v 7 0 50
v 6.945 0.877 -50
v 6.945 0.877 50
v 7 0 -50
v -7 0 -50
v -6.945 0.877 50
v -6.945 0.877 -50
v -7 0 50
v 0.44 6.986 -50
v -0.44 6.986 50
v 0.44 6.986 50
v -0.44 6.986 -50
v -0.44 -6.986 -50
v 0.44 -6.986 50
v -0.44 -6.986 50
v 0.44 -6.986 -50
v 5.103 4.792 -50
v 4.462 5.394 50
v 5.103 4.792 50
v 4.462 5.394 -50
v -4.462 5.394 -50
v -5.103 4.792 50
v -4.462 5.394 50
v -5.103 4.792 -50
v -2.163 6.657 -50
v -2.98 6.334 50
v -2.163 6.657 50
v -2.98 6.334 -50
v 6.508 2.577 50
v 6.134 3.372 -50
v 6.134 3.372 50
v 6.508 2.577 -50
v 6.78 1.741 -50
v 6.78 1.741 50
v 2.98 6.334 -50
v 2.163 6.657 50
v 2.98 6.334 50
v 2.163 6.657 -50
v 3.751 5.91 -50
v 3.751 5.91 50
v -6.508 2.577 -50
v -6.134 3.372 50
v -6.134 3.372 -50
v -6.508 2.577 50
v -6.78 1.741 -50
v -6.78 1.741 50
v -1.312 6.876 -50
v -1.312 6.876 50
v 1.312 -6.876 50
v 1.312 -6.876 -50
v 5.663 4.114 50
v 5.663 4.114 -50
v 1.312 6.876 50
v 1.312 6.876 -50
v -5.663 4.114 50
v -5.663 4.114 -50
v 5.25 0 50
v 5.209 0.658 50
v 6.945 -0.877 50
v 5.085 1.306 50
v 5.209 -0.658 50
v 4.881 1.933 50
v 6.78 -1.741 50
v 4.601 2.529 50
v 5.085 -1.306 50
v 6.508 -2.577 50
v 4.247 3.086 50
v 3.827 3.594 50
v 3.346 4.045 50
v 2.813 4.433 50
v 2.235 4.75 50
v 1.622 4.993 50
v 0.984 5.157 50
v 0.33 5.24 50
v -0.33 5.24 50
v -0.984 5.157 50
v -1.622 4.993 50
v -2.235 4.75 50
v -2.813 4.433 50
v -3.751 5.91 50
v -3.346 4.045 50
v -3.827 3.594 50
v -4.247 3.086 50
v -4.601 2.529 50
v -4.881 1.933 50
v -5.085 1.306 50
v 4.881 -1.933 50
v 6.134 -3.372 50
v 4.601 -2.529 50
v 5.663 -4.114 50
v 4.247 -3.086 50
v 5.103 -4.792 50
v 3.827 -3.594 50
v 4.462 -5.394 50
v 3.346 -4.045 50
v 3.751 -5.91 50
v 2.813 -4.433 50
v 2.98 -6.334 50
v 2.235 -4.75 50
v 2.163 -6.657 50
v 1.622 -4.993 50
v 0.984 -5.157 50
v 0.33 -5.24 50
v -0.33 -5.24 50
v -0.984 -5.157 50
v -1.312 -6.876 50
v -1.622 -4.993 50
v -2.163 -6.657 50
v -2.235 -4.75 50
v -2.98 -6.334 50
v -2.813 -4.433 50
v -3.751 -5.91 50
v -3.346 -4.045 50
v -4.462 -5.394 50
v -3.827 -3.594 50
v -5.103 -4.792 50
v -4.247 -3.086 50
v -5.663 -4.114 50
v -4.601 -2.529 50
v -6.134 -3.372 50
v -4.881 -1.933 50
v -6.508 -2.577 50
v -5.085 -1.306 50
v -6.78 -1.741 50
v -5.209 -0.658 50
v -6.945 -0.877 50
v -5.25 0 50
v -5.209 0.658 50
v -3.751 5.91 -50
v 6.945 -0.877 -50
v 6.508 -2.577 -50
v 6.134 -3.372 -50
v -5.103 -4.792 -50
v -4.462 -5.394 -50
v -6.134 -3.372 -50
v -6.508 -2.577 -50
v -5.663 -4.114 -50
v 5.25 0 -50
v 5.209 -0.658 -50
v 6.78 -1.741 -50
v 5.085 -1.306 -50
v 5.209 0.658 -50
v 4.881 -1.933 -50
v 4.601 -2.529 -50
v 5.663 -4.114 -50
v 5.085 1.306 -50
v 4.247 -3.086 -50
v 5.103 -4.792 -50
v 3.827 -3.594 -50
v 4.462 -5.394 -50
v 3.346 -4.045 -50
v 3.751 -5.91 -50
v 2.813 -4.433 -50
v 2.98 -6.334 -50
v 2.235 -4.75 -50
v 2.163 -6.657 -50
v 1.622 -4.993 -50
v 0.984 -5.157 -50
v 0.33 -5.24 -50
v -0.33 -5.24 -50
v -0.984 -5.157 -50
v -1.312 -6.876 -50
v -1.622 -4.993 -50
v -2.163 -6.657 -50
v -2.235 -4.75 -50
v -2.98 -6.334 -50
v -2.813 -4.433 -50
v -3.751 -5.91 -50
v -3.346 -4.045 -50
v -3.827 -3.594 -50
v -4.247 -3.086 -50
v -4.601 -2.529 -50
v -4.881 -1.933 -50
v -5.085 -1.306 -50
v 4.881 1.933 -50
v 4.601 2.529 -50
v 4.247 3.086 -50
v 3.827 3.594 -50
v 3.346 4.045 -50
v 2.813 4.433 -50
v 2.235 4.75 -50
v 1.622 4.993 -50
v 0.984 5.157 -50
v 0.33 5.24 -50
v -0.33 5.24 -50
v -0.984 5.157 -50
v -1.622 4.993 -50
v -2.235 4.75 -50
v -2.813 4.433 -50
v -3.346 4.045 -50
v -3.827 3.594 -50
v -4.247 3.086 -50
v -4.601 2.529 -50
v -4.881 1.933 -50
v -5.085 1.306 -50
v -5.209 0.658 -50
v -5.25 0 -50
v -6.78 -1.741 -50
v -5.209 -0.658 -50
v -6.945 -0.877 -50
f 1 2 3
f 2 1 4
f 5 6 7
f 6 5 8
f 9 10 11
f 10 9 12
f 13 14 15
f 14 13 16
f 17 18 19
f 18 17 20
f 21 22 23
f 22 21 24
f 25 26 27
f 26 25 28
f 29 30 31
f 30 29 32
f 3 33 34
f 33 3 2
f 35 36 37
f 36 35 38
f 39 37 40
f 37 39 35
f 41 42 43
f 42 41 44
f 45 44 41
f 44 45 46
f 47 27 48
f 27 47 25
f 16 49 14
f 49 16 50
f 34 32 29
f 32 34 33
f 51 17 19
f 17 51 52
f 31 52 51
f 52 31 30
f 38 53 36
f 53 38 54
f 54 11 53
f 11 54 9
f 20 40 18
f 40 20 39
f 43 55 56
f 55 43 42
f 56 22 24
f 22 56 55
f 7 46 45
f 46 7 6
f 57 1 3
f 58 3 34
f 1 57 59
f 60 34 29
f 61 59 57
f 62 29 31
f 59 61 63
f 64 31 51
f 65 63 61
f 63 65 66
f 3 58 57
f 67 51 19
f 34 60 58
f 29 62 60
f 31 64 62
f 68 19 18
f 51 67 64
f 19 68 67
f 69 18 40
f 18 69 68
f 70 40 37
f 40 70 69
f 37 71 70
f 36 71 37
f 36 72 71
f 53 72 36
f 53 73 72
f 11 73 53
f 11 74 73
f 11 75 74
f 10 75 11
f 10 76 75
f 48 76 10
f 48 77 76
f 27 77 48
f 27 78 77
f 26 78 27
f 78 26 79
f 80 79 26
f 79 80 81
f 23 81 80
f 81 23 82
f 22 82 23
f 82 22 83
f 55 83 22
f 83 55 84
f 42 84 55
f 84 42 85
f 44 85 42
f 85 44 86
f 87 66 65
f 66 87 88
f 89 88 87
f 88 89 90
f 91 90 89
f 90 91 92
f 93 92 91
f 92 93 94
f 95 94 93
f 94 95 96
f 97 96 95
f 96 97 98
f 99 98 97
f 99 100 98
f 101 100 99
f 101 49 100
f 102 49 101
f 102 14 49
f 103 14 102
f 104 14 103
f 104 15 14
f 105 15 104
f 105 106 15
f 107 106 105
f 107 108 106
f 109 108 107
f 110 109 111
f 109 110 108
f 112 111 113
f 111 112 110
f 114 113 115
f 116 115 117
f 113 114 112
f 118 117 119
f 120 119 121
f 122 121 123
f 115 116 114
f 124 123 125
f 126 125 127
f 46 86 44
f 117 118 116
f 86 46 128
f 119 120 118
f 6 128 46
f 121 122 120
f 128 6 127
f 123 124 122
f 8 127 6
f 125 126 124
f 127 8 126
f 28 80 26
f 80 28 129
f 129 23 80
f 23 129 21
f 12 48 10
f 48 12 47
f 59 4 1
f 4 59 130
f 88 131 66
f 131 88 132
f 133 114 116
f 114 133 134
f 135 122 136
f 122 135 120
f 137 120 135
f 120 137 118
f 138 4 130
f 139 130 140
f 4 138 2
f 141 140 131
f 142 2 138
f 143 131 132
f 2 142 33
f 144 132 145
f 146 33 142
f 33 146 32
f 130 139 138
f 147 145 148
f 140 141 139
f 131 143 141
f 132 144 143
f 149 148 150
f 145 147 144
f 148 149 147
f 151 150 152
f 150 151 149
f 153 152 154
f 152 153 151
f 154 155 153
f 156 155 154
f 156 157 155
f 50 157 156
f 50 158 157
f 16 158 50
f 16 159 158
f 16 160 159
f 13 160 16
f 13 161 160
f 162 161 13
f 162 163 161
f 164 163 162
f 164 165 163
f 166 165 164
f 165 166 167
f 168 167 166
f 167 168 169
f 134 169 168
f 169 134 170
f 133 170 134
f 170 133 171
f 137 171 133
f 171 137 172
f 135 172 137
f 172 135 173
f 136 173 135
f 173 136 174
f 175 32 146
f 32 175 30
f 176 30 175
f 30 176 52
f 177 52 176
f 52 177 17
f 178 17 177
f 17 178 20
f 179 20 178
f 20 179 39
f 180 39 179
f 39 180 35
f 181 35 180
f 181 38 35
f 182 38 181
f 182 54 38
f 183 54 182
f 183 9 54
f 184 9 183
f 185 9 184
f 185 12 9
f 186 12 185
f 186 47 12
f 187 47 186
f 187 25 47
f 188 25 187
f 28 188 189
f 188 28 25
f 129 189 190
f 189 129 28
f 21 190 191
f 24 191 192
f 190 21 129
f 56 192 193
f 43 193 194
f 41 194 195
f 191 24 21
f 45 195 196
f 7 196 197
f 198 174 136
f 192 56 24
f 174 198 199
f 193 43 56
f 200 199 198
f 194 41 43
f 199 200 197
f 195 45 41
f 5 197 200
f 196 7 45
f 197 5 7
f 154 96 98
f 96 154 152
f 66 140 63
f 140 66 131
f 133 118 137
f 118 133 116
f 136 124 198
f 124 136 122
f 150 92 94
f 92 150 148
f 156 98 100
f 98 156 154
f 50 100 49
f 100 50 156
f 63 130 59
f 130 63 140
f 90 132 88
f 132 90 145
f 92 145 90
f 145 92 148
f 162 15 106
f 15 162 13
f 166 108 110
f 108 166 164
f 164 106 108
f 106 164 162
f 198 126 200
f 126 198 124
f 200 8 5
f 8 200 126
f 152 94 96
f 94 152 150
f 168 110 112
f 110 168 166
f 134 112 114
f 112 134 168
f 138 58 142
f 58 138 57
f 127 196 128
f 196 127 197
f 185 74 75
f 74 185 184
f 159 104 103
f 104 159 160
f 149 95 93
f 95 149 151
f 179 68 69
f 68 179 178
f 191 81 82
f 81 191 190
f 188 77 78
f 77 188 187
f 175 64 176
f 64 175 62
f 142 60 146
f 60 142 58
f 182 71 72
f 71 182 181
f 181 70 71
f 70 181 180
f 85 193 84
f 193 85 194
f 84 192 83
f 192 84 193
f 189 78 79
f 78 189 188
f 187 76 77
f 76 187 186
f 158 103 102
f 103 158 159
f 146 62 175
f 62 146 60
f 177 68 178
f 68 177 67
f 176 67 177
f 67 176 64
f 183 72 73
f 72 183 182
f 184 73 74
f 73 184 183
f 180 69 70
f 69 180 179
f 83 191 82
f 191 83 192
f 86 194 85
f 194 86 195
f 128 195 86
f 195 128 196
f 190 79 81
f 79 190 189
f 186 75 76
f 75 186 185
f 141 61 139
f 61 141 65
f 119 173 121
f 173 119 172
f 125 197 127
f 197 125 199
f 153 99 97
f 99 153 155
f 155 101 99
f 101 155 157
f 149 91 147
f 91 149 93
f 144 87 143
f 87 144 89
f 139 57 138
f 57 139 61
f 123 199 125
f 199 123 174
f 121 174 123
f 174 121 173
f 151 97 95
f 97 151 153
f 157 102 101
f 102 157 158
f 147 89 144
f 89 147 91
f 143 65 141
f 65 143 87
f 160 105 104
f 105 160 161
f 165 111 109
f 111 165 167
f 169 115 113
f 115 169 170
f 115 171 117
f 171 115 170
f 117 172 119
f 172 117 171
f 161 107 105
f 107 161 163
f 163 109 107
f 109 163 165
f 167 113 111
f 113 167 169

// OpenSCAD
$fn = 50;


difference() {
	union() {
		translate(v = [0, 0, -50.0000000000]) {
			cylinder(h = 100, r = 7.0000000000);
		}
	}
	union() {
		translate(v = [0, 0, -100.0000000000]) {
			cylinder(h = 200, r = 5.2500000000);
		}
	}
}
